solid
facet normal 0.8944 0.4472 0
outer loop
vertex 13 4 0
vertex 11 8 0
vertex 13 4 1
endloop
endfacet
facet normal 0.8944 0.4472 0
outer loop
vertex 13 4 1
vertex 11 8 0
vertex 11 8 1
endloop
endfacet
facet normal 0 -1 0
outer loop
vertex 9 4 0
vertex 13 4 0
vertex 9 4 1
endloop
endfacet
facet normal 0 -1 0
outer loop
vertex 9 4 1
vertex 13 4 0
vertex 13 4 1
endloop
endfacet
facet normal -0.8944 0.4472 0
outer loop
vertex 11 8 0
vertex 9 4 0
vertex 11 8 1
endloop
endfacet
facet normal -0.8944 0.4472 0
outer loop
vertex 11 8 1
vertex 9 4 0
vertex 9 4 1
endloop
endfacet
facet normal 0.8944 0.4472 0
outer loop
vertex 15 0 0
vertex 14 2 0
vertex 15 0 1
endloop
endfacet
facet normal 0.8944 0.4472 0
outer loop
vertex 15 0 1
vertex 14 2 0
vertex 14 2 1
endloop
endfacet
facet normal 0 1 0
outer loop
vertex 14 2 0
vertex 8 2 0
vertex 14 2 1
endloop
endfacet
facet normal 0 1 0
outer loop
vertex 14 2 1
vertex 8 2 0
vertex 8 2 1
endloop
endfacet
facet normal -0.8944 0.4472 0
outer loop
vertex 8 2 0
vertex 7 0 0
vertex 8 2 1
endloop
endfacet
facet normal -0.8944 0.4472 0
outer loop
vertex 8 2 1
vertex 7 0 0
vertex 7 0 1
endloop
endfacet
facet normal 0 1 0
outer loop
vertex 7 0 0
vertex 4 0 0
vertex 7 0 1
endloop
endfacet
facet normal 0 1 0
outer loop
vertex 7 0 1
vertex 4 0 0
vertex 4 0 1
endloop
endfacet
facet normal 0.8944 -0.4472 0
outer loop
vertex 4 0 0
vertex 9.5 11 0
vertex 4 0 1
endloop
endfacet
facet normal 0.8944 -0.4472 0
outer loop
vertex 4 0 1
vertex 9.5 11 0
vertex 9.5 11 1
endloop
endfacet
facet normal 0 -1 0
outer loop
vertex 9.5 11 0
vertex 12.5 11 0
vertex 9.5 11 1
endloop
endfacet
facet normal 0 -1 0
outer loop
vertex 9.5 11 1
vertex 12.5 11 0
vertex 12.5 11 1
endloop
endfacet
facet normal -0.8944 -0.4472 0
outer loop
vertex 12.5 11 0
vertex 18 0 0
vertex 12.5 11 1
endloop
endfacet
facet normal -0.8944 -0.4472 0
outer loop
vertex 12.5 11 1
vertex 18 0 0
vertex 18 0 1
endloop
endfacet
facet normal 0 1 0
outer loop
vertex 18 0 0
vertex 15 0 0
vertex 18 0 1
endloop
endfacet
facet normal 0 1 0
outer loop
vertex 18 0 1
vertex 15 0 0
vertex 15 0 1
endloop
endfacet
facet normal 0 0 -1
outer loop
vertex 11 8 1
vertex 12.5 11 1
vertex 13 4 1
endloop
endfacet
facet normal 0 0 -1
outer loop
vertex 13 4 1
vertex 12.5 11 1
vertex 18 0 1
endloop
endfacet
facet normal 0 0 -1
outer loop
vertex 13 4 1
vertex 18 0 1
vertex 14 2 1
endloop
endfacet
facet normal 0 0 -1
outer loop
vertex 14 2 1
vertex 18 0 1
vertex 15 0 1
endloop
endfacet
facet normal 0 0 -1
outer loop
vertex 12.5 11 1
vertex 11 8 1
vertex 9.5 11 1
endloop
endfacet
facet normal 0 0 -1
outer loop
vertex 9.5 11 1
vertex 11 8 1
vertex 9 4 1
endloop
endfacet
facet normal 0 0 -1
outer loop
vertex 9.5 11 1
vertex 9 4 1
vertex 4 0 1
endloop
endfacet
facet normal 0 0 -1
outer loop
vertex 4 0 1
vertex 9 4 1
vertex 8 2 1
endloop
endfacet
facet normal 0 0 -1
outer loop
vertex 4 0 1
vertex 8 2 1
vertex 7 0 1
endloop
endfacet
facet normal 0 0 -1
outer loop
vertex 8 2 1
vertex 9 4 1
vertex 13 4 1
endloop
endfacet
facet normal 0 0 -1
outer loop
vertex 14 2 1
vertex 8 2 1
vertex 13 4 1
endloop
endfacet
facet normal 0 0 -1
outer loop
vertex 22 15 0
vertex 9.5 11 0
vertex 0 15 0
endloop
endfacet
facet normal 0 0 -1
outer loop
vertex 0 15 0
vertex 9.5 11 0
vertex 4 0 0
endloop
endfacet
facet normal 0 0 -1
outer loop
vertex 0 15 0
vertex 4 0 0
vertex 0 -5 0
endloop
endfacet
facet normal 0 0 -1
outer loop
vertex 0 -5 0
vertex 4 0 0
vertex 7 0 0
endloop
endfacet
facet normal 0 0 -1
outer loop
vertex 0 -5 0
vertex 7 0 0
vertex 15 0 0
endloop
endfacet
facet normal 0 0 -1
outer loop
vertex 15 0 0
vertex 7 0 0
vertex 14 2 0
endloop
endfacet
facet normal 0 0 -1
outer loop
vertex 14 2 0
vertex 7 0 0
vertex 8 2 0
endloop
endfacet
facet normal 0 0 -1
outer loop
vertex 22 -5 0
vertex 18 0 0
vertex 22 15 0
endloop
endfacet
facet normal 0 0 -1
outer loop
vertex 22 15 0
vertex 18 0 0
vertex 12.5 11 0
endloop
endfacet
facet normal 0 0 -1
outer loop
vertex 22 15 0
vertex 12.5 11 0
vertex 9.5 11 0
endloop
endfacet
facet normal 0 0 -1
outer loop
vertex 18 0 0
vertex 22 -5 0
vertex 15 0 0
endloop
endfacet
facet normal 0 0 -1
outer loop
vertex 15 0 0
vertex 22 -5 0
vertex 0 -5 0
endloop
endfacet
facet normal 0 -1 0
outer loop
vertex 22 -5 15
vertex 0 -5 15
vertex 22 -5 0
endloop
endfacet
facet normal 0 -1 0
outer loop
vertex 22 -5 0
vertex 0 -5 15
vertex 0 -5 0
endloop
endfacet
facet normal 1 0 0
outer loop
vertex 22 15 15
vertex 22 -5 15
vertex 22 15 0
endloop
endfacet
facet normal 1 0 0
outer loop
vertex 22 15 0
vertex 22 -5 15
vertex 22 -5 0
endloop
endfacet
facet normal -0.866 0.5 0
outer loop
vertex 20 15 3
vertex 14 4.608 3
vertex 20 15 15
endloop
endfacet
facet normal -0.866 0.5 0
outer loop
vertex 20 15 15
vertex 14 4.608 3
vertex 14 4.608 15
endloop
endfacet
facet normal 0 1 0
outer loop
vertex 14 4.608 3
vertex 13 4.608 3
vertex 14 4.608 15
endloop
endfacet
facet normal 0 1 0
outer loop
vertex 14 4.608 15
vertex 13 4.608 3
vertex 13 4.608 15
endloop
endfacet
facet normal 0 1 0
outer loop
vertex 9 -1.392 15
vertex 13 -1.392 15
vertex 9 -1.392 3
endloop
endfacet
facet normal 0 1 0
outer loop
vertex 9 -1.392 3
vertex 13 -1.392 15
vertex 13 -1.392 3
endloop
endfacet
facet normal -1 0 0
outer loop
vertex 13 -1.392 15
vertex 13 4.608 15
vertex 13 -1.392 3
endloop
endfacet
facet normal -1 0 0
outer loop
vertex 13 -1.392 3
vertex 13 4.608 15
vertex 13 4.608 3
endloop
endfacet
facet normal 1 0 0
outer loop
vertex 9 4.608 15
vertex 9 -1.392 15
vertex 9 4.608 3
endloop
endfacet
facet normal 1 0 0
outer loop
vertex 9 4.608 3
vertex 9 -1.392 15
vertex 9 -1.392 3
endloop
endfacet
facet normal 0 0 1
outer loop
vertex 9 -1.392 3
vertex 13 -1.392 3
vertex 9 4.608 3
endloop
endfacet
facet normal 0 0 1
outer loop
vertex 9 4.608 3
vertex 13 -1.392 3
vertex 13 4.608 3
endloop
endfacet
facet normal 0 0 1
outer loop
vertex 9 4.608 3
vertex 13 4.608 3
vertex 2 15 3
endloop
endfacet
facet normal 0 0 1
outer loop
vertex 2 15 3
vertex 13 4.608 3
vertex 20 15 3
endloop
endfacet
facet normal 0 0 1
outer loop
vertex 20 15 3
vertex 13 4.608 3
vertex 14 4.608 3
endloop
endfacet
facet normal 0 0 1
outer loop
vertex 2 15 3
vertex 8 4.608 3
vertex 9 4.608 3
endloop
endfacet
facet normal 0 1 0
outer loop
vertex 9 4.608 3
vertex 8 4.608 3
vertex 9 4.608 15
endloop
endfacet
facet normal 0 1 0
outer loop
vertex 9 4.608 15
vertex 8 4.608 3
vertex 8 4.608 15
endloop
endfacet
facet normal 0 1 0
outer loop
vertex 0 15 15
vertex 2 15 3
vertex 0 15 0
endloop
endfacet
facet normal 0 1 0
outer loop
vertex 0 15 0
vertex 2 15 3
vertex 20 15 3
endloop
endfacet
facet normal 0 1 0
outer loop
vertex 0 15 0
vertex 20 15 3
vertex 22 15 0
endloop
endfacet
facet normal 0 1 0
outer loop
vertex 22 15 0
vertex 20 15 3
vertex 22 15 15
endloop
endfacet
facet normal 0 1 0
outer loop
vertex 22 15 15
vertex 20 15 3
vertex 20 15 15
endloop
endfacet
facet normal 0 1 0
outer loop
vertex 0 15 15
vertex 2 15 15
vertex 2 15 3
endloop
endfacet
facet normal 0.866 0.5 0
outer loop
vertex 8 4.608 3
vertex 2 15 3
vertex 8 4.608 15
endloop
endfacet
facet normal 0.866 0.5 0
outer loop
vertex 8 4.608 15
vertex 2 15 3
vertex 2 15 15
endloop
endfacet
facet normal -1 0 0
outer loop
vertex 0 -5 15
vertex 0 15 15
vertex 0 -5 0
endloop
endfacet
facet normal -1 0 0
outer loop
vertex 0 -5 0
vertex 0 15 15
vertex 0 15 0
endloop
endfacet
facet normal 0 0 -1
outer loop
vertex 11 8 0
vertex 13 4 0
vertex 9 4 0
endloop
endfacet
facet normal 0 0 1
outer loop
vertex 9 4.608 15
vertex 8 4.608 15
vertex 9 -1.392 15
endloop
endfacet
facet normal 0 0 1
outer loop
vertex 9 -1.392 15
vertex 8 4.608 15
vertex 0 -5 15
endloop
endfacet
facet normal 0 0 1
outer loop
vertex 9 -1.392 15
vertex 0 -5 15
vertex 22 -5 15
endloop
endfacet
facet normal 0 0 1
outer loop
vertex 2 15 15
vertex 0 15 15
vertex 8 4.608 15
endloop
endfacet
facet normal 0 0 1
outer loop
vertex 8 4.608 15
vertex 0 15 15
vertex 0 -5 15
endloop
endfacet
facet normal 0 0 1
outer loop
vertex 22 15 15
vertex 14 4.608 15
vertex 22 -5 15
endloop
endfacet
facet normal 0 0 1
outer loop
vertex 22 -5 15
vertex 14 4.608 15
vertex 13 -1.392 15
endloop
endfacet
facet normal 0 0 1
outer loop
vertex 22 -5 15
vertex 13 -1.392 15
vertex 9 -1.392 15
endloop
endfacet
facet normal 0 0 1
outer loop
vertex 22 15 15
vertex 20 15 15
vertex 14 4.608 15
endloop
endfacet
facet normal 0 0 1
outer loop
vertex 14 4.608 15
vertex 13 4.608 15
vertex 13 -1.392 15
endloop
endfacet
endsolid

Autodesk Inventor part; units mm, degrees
ref_plane "YZ Plane" through (0, 0, 0) normal (1, 0, 0) x (0, 1, 0)
ref_plane "XZ Plane" through (0, 0, 0) normal (0, 1, 0) x (-1, 0, 0)
ref_plane "XY Plane" through (0, 0, 0) normal (0, 0, 1) x (1, 0, 0)
sketch "Boceto1" plane through (0, 0, 0) normal (0, 0, 1) x (1, 0, 0)
  line L0 (0, 0) -> (0, 15)
  line L1 (0, 15) -> (2, 15)
  line L2 (2, 15) -> (8, 4.6077)
  line L3 (2, 15) -> (14, 15) construction
  line L4 (0, 0) -> (0, -5)
  line L5 (8, 4.6077) -> (14, 4.6077)
  line L6 (14, 4.6077) -> (20, 15)
  line L7 (20, 15) -> (22, 15)
  line L8 (22, 15) -> (22, -0.0111)
  line L9 (22, -0.0111) -> (22, -5)
  line L10 (22, -5) -> (0, -5)
  dimension "d0" = 15
  dimension "d1" = 2
  dimension "d2" = 12
  dimension "d3" = 60
  dimension "d4" = 5
  dimension "d5" = 6
  dimension "d6" = 12
  dimension "d7" = 2
extrude "Extrusión1" add sketch "Boceto1" along normal blind 15
sketch "Boceto2" plane through (0, 0, 15) normal (0, 0, 1) x (1, 0, 0)
  line L0 (14, 4.6077) -> (8, 4.6077) projected
  line L1 (8, 4.6077) -> (9, 4.6077)
  line L2 (9, 4.6077) -> (9, -1.3923)
  line L3 (9, -1.3923) -> (13, -1.3923)
  line L4 (13, -1.3923) -> (13, 4.6077)
  line L5 (9, 4.6077) -> (13, 4.6077)
  point P0 (0, 0)
  dimension "d10" = 1
  dimension "d11" = 6
  dimension "d12" = 4
extrude "Extrusión2" cut sketch "Boceto2" against normal blind 12
sketch "Boceto3" plane through (0, 0, 0) normal (0, 0, -1) x (-1, 0, 0)
  line L0 (-22, -5) -> (-22, 15) projected
  line L1 (-22, -5) -> (-22, 15)
  line L2 (-2, 15) -> (0, 15) projected
  line L3 (-22, 15) -> (0, 15)
  line L4 (0, 15) -> (0, -5) projected
  line L5 (0, 15) -> (0, -5)
  line L6 (0, -5) -> (-22, -5)
  line L7 (0, -5) -> (-22, -5) projected
  line L8 (-16.5, 0) -> (-15, 0)
  line L9 (-16.5, 0) -> (-18, 0)
  line L10 (-11, 11) -> (-12.5, 11)
  line L11 (-12.5, 11) -> (-18, 0)
  line L12 (-11, 11) -> (-9.5, 11)
  line L13 (-5.5, 0) -> (-7, 0)
  line L14 (-5.5, 0) -> (-4, 0)
  line L15 (-4, 0) -> (-9.5, 11)
  line L16 (-15, 0) -> (-14, 2)
  line L17 (-7, 0) -> (-8, 2)
  line L18 (-14, 2) -> (-8, 2)
  line L19 (-11, 4) -> (-10, 4)
  line L20 (-10, 4) -> (-9, 4)
  line L21 (-9, 4) -> (-11, 8)
  line L22 (-11, 4) -> (-13, 4)
  line L23 (-13, 4) -> (-11, 8)
  line L24 (-13, 4) -> (-11, 8)
  line L25 (-11, 8) -> (-9, 4)
  line L26 (-9, 4) -> (-13, 4)
  point P0 (0, 0)
  dimension "d16" = 1.5
  dimension "d23" = 1.5
  dimension "d24" = 1.5
  dimension "d25" = 1.5
  dimension "d26" = 3
  dimension "d27" = 4
  dimension "d29" = 1
extrude "Extrusión3" add sketch "Boceto3" against normal blind 3 contours L0 L3 L2 L4 L6 | L9 L11 L10 L12 L15 L14 L13 L17 L18 L16 L8 | L22 L23 L21 L20 L19
extrude "Extrusión4" cut sketch "Boceto3" against normal blind 1 contours L9 L11 L10 L12 L15 L14 L13 L17 L18 L16 L8
properties part number "soporte_antena_aquiles"
